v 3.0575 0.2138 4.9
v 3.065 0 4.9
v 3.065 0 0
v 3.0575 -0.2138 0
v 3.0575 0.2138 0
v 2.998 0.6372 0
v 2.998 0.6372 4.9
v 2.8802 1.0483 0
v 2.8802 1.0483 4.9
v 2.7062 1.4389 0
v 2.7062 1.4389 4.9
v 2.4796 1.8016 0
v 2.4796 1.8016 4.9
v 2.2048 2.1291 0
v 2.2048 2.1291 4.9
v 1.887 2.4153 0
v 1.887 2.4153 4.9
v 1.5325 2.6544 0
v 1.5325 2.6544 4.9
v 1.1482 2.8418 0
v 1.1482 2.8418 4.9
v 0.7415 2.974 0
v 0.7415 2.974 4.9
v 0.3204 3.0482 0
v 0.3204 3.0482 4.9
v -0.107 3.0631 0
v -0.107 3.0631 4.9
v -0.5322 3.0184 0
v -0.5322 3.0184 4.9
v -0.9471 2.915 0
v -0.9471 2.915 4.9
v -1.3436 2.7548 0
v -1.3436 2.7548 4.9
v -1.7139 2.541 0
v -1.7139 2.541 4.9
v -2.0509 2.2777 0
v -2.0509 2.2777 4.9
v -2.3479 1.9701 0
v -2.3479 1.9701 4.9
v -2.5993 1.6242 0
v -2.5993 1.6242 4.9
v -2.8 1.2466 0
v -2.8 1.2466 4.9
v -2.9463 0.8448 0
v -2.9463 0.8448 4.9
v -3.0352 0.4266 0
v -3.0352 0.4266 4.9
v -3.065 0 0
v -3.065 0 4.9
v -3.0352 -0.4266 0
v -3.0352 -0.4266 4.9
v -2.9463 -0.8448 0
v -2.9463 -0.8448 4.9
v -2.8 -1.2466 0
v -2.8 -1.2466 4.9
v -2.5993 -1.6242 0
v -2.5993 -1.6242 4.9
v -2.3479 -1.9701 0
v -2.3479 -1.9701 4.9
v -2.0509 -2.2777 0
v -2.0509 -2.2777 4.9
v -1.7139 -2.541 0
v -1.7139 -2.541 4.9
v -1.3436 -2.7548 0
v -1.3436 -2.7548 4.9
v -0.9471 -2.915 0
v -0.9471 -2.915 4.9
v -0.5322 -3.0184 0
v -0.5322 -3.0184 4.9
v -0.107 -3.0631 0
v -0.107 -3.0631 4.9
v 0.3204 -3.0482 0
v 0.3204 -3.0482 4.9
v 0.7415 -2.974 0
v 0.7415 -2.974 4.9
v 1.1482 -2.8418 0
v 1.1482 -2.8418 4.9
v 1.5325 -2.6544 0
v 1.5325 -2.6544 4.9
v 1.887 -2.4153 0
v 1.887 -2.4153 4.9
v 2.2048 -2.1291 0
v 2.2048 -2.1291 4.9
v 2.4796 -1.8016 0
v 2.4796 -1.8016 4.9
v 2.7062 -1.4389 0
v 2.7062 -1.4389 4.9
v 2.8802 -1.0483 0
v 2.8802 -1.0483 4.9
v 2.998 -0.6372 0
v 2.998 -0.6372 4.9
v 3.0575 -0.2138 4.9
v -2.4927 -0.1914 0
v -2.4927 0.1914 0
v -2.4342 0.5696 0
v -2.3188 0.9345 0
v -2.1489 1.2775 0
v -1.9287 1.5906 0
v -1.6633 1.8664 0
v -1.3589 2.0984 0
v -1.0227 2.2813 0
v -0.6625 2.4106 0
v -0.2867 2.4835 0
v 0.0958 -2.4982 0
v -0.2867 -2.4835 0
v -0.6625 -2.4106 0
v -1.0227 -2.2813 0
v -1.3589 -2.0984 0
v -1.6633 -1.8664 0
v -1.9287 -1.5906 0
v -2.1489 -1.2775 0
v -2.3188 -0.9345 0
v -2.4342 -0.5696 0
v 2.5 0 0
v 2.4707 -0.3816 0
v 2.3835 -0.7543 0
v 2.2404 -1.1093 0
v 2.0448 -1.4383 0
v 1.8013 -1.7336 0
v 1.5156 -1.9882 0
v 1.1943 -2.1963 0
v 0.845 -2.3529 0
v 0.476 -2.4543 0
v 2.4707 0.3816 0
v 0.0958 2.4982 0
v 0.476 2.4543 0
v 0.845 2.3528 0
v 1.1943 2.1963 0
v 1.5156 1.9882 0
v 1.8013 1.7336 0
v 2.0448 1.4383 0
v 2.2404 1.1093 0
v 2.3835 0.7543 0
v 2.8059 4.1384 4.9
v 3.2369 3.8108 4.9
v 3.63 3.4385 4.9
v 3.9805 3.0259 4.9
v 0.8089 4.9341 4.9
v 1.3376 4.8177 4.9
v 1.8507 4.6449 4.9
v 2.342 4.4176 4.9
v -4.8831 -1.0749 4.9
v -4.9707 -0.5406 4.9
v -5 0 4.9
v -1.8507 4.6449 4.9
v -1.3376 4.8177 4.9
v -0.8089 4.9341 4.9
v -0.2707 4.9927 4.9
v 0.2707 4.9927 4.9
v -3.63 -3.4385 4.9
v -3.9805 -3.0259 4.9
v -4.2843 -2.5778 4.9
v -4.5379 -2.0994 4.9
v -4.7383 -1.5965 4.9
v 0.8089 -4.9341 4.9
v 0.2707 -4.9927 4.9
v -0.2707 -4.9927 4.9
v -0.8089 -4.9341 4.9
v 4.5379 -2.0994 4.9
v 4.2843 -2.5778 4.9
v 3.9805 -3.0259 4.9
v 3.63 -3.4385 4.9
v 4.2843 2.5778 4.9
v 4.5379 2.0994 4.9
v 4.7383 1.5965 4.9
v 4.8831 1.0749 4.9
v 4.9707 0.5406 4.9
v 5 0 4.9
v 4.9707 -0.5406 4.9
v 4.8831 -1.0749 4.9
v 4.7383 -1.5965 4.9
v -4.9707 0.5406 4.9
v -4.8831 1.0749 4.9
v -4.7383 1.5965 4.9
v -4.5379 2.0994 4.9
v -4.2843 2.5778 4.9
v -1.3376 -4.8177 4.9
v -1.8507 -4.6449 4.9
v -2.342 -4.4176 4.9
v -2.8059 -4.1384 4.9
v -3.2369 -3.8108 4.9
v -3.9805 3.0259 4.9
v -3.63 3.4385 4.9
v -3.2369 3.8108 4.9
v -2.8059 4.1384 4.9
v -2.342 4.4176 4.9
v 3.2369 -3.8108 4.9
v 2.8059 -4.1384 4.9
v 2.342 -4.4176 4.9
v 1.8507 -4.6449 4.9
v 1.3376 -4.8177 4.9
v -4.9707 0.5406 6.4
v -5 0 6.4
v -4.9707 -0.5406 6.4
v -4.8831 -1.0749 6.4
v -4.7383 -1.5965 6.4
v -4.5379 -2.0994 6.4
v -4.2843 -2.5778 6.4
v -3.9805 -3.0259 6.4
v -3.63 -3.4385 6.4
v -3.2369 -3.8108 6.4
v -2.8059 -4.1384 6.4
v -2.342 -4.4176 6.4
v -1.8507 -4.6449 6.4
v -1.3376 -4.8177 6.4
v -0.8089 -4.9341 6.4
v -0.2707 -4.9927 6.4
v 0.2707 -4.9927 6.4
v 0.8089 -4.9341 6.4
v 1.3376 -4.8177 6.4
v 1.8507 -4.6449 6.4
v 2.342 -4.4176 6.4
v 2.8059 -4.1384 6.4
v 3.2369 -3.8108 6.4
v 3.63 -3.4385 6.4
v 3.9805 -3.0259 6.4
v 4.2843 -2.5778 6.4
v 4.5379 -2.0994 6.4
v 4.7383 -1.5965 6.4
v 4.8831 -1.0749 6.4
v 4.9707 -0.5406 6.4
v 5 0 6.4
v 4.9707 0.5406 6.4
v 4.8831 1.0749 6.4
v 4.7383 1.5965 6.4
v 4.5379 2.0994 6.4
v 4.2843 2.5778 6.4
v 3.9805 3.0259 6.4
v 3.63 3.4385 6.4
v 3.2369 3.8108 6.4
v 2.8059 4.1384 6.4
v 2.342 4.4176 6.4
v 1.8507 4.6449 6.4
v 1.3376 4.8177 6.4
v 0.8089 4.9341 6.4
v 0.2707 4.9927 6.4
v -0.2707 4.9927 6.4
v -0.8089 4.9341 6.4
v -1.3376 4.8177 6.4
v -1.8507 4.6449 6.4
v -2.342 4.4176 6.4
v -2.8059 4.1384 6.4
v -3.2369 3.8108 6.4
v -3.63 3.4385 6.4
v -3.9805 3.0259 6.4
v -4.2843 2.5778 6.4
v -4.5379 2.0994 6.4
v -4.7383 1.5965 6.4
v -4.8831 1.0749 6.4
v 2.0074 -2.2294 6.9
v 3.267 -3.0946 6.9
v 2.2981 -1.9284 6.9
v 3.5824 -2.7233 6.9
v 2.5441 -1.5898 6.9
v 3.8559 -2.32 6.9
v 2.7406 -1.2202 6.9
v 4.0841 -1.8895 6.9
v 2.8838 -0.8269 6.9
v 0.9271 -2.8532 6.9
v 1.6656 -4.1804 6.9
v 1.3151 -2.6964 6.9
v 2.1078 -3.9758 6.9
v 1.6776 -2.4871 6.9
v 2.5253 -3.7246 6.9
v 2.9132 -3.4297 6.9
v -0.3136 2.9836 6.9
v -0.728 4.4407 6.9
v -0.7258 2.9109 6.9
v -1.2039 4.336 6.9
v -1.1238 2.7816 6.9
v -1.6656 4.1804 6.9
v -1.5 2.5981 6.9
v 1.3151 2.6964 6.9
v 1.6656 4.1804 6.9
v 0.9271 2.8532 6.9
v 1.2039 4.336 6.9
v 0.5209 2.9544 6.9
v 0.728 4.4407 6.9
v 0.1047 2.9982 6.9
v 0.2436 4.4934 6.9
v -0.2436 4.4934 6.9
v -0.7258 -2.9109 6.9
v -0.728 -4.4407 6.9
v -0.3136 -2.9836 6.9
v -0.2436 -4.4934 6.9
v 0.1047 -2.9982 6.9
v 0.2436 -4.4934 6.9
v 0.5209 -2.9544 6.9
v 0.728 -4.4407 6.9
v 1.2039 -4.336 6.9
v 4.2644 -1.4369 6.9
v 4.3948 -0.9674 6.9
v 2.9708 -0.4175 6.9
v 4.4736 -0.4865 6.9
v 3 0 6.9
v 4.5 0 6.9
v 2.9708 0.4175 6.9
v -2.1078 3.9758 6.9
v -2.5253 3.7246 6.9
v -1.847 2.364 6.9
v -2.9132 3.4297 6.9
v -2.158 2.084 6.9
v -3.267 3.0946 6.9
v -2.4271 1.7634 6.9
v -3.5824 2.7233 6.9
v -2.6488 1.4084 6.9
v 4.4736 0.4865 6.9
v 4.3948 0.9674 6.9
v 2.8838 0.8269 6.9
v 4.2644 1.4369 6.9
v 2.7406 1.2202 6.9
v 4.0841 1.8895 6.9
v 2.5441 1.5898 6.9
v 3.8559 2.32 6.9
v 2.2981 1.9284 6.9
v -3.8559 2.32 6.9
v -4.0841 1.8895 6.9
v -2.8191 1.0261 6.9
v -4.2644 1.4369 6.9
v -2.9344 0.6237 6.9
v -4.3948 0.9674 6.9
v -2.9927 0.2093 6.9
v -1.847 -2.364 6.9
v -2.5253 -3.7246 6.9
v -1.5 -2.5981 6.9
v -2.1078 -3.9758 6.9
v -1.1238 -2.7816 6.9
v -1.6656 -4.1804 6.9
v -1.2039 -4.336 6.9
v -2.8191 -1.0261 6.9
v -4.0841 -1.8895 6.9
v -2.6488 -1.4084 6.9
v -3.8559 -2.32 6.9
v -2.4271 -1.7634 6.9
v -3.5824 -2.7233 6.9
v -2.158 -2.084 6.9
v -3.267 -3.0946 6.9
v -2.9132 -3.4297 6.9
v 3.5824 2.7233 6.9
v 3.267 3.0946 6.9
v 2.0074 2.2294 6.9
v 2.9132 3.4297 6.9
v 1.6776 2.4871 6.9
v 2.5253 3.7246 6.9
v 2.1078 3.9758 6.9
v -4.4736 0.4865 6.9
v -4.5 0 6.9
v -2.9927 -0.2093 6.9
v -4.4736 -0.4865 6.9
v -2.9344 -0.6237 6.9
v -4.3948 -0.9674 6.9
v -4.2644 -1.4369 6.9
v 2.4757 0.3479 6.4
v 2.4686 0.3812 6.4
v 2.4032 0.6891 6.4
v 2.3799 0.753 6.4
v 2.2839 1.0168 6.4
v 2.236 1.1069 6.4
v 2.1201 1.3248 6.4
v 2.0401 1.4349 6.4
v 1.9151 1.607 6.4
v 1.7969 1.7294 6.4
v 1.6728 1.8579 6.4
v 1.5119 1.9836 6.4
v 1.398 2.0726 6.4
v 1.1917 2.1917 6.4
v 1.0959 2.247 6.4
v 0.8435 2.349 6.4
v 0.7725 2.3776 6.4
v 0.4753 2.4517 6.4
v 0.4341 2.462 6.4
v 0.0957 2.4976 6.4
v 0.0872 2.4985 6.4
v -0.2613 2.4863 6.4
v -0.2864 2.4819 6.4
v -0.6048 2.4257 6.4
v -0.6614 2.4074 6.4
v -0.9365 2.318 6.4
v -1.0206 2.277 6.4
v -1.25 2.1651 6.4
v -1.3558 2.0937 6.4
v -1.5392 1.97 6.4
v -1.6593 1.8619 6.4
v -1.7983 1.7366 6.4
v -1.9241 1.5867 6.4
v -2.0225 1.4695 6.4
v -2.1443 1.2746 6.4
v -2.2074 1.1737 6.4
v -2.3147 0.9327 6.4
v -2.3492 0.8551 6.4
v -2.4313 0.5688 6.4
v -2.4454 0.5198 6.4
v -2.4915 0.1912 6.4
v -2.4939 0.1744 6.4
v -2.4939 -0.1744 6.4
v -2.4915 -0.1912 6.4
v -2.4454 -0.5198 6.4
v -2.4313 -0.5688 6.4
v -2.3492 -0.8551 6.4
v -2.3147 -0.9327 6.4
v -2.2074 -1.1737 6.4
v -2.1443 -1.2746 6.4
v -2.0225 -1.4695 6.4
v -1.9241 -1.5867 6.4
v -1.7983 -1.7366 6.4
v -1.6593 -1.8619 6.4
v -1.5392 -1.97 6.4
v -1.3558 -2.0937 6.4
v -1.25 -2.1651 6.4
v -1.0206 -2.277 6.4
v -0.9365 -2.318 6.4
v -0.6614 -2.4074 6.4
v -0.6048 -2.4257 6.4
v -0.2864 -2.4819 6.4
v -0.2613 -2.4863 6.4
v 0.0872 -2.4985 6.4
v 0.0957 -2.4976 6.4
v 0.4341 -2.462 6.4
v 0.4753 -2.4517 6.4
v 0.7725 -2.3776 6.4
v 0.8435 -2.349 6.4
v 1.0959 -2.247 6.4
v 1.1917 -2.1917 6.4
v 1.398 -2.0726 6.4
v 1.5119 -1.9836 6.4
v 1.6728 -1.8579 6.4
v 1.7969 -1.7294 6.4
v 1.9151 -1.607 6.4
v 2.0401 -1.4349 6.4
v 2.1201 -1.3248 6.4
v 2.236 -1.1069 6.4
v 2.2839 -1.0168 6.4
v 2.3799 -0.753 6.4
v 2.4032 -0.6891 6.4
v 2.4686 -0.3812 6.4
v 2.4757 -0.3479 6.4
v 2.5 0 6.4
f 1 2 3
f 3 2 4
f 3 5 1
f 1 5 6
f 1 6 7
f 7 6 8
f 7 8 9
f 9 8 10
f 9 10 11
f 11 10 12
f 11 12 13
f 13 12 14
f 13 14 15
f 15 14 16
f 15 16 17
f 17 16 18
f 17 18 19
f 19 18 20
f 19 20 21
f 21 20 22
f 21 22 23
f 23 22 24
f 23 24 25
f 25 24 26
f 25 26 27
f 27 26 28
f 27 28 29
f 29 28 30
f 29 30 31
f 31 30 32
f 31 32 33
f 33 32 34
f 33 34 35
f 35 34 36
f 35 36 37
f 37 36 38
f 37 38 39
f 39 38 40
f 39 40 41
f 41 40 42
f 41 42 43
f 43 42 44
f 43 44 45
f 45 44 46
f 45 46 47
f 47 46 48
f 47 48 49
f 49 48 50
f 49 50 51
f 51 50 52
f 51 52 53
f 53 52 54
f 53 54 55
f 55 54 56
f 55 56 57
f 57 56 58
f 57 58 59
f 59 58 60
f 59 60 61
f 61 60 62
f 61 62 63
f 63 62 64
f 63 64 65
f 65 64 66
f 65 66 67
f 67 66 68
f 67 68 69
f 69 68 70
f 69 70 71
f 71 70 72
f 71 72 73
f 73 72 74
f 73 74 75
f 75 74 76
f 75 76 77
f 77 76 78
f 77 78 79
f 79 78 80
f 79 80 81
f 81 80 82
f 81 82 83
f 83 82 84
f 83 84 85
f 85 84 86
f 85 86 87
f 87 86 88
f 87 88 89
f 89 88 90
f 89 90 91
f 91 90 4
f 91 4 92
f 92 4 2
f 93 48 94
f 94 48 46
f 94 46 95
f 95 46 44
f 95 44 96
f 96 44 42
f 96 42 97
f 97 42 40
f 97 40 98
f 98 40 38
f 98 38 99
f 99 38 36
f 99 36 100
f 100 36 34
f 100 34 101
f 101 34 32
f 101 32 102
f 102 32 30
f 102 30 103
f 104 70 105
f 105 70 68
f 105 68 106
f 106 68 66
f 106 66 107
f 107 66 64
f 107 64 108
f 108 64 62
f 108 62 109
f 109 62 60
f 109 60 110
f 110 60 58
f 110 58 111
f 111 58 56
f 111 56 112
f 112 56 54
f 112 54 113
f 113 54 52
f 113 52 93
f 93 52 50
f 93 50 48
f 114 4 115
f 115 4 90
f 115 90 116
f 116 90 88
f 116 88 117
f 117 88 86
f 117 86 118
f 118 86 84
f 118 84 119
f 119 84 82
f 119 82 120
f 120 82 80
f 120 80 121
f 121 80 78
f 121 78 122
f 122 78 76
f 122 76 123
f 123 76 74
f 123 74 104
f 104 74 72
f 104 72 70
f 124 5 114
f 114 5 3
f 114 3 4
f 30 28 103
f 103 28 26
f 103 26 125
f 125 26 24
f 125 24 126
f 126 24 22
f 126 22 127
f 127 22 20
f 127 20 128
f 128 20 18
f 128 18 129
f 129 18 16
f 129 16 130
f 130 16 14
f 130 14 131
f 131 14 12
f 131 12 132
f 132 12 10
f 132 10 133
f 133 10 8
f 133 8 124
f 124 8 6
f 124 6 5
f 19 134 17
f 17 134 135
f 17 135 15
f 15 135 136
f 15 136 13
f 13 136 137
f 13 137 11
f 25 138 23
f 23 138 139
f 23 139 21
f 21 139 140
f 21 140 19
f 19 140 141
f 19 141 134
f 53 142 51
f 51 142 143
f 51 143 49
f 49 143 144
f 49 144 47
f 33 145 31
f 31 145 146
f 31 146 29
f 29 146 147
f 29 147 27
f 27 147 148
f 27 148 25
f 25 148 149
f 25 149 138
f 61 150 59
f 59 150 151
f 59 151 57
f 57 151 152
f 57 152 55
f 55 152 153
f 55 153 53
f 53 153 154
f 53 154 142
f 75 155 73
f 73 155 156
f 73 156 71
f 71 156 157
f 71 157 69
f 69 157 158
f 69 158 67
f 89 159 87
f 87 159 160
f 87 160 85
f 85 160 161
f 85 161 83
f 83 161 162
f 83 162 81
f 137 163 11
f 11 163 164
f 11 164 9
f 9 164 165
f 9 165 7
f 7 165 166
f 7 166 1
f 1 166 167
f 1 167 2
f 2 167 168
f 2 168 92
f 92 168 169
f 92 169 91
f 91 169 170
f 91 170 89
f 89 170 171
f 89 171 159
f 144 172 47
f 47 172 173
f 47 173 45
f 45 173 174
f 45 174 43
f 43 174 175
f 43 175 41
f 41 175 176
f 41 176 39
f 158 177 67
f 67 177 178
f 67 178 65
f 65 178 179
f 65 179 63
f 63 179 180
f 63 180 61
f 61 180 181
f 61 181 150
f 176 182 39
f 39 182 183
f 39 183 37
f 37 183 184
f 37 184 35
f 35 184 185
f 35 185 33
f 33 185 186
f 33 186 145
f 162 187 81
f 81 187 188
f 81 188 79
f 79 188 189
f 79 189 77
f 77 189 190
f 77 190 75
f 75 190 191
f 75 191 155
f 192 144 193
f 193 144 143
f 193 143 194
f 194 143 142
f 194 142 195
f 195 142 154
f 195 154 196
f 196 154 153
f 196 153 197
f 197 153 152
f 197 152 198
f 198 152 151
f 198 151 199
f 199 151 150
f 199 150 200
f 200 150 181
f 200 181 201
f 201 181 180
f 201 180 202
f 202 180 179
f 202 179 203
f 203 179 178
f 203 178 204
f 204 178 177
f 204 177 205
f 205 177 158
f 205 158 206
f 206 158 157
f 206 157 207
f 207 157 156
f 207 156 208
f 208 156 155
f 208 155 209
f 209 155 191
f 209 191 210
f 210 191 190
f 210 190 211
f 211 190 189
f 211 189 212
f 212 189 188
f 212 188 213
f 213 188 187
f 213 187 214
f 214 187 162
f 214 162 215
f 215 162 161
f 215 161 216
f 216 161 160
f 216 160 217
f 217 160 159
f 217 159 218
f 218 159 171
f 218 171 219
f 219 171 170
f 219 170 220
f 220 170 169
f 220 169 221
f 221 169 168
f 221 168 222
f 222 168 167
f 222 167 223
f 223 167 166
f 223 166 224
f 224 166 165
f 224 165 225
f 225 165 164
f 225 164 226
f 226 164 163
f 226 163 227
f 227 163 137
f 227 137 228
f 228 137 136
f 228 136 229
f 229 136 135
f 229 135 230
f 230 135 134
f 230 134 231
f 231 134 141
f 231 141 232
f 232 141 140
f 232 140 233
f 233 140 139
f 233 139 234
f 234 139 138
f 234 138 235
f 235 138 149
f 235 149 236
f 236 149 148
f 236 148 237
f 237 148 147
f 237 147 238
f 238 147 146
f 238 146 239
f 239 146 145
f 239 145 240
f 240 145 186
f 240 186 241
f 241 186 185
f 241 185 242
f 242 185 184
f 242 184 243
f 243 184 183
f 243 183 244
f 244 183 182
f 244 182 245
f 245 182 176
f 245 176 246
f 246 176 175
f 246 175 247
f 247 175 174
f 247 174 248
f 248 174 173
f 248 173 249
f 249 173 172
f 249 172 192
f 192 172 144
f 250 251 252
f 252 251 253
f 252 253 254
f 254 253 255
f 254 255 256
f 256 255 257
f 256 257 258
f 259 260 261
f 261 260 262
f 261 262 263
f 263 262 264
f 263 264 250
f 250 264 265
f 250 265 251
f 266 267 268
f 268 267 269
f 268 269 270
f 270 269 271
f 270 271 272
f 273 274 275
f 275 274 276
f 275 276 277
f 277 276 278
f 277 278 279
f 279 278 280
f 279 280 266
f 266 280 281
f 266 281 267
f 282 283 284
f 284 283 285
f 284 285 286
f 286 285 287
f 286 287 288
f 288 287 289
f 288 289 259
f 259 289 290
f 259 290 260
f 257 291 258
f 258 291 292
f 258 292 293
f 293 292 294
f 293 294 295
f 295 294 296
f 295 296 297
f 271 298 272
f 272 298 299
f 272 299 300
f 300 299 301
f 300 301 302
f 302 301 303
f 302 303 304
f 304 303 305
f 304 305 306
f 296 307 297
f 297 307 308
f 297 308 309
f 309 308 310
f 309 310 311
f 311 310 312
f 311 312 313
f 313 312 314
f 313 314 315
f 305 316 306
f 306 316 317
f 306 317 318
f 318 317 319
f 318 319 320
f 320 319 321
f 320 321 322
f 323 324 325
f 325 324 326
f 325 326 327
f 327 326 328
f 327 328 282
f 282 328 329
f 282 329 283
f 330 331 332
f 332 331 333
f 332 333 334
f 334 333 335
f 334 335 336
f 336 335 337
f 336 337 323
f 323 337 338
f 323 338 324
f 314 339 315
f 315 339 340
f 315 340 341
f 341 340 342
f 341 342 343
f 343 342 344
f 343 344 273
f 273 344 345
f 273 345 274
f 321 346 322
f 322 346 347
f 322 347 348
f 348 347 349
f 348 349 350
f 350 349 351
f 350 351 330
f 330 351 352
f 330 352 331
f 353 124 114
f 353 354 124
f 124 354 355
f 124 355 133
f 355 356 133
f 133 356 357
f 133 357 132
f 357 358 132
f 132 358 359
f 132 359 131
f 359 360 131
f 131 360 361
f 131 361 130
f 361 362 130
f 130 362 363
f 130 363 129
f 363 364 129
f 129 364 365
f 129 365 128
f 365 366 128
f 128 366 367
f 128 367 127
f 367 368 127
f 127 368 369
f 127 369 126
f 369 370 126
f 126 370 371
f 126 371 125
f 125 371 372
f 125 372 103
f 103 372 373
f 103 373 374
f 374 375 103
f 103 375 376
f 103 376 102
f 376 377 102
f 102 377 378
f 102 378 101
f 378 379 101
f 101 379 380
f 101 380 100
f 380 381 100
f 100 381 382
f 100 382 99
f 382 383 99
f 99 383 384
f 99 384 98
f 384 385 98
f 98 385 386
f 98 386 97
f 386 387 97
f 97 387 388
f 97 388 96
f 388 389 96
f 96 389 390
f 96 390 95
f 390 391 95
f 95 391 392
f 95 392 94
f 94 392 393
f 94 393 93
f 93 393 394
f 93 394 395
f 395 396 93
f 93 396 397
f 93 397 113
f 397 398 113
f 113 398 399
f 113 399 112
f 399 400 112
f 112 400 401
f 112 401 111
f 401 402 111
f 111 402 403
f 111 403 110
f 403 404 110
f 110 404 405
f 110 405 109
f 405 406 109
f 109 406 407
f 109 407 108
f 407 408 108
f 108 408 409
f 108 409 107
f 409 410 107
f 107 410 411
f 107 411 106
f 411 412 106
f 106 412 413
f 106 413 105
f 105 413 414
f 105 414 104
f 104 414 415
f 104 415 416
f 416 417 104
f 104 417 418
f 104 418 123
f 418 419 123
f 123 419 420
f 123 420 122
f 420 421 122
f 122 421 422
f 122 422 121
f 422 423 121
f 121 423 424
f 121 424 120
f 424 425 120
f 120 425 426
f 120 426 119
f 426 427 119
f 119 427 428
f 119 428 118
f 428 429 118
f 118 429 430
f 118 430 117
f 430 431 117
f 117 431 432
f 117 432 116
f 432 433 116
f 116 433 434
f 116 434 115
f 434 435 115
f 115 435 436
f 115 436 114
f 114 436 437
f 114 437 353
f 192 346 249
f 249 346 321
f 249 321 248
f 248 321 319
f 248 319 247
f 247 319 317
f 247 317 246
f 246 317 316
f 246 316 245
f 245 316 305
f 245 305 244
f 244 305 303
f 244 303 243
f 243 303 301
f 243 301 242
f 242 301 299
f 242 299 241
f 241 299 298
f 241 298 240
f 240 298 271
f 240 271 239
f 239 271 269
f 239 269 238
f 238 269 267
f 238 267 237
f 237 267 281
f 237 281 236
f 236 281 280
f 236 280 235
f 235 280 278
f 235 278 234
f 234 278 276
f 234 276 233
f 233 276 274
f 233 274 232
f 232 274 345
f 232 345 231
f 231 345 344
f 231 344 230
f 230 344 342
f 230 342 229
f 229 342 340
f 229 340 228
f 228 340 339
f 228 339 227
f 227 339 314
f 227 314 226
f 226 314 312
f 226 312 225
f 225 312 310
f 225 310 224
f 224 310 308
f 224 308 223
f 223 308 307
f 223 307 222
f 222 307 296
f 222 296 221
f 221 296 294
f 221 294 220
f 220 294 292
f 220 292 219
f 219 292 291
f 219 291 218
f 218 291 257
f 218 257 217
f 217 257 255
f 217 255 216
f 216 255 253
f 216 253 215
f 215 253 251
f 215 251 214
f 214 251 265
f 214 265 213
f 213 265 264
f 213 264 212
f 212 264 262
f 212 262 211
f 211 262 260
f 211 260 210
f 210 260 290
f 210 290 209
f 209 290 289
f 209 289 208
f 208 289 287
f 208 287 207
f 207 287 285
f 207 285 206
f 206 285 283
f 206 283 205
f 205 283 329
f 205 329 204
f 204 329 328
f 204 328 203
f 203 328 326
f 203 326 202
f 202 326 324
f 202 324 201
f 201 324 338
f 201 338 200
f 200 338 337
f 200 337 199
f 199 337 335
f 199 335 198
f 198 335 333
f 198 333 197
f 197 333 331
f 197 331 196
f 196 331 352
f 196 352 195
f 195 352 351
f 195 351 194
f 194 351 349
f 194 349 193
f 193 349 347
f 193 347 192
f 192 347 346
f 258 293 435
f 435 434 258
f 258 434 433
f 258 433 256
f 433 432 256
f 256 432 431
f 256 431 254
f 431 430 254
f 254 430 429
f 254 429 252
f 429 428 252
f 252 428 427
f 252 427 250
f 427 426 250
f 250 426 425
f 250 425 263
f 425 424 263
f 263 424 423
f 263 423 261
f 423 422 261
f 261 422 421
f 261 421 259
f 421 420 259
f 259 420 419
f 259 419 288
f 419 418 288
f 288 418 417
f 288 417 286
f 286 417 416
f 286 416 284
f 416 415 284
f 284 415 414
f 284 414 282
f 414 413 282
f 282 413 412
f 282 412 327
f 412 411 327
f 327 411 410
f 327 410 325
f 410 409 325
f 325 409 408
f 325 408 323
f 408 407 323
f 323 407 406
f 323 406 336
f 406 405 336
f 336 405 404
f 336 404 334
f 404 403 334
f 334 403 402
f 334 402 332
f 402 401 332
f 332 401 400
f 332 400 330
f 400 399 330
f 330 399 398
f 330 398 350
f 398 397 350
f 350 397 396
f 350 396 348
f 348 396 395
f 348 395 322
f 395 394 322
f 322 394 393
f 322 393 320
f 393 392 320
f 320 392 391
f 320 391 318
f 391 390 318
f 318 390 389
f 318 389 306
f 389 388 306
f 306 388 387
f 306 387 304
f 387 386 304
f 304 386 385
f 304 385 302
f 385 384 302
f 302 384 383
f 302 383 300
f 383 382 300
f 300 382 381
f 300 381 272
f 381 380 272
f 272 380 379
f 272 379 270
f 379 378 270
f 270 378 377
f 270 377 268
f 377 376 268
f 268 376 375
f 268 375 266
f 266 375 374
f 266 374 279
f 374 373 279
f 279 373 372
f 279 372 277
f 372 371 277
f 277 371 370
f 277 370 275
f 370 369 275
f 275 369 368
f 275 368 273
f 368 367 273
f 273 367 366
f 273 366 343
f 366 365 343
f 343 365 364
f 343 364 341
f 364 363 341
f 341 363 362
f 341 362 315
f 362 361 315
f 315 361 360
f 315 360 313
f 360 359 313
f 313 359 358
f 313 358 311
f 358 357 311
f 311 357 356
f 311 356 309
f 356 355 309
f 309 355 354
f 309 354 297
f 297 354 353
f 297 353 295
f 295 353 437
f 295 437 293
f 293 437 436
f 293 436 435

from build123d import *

# Parameters (mm, degrees)
SKETCH1_R           = 3.065
BOSS_EXTRUDE1_DEPTH = 4.9
SKETCH2_R           = 5
BOSS_EXTRUDE2_DEPTH = 2
SKETCH3_R           = 2.5
CUT_EXTRUDE1_DEPTH  = 7.9
CHAMFER1_SIZE       = 0.5
CHAMFER2_SIZE       = 0.5


with BuildPart() as part:
    # Sketch1 → Boss-Extrude1 (new body)
    with BuildSketch(Plane.XY):
        Circle(SKETCH1_R)
    extrude(amount=BOSS_EXTRUDE1_DEPTH)

    # Sketch2 → Boss-Extrude2 (add)
    with BuildSketch(Plane.XY.offset(4.9)):
        Circle(SKETCH2_R)
    extrude(amount=BOSS_EXTRUDE2_DEPTH)

    # Sketch3 → Cut-Extrude1 (cut, through all)
    with BuildSketch(Plane.XY.offset(6.9)):
        Circle(SKETCH3_R)
    extrude(amount=-CUT_EXTRUDE1_DEPTH, mode=Mode.SUBTRACT)

    # Chamfer1
    chamfer1_edges = [part.edges().sort_by_distance(p)[0] for p in [
        (-5, 0, 6.9),
    ]]
    chamfer(chamfer1_edges, length=CHAMFER1_SIZE)

    # Chamfer2
    chamfer2_edges = [part.edges().sort_by_distance(p)[0] for p in [
        (-2.5, 0, 6.9),
    ]]
    chamfer(chamfer2_edges, length=CHAMFER2_SIZE)


solid = part.part
